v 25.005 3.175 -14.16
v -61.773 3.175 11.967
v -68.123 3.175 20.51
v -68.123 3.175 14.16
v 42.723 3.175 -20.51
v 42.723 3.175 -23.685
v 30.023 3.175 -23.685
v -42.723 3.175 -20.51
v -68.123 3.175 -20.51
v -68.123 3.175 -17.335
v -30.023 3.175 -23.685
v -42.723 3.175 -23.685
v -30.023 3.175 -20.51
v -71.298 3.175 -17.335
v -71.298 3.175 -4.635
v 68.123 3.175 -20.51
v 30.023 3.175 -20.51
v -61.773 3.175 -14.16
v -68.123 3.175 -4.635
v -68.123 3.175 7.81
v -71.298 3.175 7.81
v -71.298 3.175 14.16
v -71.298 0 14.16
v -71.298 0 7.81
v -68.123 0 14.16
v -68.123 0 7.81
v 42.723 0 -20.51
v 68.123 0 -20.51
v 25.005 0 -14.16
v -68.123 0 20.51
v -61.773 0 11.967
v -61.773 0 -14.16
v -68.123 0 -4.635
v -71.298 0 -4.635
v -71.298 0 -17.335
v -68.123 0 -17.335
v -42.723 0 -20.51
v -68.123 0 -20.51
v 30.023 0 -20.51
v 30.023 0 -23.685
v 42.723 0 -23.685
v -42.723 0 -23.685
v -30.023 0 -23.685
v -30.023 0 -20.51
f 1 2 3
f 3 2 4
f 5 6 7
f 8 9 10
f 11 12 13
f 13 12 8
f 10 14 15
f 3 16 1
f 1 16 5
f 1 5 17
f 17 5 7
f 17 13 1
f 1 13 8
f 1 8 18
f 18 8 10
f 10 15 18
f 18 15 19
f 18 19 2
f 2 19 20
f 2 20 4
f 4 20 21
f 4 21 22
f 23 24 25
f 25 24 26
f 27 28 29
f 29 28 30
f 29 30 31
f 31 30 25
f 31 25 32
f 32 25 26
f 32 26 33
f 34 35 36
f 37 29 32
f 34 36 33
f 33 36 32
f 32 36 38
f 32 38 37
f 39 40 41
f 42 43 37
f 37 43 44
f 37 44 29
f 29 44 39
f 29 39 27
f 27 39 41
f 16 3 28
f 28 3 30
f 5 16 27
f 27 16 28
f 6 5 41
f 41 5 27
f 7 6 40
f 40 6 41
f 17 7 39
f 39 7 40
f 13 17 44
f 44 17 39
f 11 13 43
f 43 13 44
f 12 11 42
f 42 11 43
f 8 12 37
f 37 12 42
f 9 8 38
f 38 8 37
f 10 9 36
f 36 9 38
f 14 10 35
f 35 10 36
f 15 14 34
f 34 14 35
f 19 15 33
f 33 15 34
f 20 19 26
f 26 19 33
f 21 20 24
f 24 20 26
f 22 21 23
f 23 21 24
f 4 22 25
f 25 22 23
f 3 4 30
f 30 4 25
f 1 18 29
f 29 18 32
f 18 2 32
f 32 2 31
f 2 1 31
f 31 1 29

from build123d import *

# Parameters (mm, degrees)
BOSS_EXTRUDE1_DEPTH = 3.175


with BuildPart() as part:
    # Sketch1 → Boss-Extrude1 (new body)
    with BuildSketch(Plane(origin=(0, 0, 0), x_dir=(1, 0, 0), z_dir=(0, 1, 0))):
        Polygon((68.1228, 20.51), (42.7228, 20.51), (42.7228, 23.685), (30.0228, 23.685), (30.0228, 20.51), (-30.0228, 20.51), (-30.0228, 23.685), (-42.7228, 23.685), (-42.7228, 20.51), (-68.1228, 20.51), (-68.1228, 17.335), (-71.2978, 17.335), (-71.2978, 4.635), (-68.1228, 4.635), (-68.1228, -7.81), (-71.2978, -7.81), (-71.2978, -14.16), (-68.1228, -14.16), (-68.1228, -20.51), align=None)
        Polygon((-61.7728, 14.16), (-61.7728, -11.966623033), (25.00529437, 14.16), align=None, mode=Mode.SUBTRACT)
    extrude(amount=BOSS_EXTRUDE1_DEPTH)


solid = part.part
